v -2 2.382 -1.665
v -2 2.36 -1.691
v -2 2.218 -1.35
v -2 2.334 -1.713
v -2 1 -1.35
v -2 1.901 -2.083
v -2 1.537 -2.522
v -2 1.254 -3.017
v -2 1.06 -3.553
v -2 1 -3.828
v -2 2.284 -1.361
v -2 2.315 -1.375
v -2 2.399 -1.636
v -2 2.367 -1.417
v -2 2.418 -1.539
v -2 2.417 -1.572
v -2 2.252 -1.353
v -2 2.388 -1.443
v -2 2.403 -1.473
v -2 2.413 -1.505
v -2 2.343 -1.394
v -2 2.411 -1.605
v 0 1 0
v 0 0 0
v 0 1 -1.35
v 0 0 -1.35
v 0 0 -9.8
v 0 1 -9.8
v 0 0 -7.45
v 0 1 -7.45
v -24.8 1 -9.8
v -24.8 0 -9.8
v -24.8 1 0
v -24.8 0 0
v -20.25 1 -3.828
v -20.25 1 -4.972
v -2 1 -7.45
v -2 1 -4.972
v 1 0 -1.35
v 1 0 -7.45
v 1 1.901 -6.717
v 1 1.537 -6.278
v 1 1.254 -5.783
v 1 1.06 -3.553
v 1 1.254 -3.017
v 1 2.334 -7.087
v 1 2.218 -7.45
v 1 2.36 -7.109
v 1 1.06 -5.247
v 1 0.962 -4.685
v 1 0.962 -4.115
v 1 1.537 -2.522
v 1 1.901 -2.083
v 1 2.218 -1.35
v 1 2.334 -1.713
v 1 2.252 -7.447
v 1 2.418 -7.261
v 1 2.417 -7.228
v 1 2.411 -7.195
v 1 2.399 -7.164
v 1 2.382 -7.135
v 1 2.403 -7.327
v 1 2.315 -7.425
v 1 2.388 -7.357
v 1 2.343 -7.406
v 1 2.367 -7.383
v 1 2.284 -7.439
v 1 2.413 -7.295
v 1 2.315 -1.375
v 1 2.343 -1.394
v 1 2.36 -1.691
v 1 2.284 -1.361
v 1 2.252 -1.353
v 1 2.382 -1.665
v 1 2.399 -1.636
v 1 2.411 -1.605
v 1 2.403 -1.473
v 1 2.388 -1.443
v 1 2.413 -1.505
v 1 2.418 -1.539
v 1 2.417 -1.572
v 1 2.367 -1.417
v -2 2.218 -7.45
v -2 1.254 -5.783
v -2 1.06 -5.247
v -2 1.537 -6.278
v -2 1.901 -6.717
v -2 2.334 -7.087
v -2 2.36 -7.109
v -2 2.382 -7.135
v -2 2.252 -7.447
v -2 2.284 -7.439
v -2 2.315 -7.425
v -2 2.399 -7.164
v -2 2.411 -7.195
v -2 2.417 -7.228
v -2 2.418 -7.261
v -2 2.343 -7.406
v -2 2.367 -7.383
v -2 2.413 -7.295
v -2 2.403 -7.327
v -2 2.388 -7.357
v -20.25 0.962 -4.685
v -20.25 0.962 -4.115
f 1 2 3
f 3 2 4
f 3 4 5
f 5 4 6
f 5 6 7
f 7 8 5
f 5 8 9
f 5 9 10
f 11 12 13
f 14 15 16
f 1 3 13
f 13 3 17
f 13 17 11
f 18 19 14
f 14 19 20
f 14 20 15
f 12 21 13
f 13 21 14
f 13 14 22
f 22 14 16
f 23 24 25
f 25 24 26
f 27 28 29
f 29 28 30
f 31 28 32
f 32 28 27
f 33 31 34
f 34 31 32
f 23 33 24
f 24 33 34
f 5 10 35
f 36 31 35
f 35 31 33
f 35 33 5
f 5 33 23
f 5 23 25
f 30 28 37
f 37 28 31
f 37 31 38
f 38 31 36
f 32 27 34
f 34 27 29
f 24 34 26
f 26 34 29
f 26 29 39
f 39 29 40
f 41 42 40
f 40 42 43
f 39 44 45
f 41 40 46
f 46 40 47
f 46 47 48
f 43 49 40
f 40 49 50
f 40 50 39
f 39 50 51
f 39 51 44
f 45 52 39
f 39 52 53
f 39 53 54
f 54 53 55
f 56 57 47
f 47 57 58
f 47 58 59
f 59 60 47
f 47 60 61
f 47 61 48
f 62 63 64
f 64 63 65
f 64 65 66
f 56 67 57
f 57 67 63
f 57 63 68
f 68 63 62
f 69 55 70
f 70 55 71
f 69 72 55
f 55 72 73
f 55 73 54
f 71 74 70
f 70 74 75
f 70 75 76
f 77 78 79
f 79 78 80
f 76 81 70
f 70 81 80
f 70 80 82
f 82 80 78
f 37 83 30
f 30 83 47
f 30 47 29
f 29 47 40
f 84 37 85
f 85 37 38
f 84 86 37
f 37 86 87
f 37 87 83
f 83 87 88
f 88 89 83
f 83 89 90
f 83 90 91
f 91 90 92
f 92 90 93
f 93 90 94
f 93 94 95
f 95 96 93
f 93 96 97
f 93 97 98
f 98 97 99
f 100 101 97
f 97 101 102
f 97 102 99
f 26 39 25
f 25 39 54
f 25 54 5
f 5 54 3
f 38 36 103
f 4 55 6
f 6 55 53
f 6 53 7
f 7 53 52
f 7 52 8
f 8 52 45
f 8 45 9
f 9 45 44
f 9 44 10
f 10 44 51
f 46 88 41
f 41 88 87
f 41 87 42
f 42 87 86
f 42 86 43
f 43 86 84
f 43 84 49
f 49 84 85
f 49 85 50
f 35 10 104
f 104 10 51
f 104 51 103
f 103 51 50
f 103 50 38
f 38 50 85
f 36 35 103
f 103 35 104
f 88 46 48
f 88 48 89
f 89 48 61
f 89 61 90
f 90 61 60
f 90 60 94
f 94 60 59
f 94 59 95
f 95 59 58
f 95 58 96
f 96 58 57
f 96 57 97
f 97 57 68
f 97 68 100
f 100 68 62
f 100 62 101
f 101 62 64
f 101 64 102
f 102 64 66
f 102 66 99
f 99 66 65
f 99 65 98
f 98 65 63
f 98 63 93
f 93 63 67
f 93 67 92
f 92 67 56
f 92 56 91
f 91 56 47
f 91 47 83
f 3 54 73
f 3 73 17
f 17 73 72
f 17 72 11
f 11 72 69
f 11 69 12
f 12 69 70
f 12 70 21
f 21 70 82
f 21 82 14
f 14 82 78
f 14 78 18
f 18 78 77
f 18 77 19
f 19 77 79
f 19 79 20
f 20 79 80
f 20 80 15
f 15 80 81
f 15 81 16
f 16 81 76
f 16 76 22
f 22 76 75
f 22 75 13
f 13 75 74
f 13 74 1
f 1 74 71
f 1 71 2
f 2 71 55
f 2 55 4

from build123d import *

# Parameters (mm, degrees)
SKETCH1_W           = 24.8
SKETCH1_H           = 9.8
BOSS_EXTRUDE1_DEPTH = 1
SKETCH2_W           = 3
SKETCH2_H           = 6.1
BOSS_EXTRUDE2_DEPTH = 3.25
SKETCH4_W           = 1
SKETCH4_H           = 6.1
BOSS_EXTRUDE3_DEPTH = 1
SKETCH3_R           = 3.3
CUT_EXTRUDE1_DEPTH  = 21.25
FILLET1_R           = 0.2


with BuildPart() as part:
    # Sketch1 → Boss-Extrude1 (new body)
    with BuildSketch(Plane(origin=(0, 0, 0), x_dir=(1, 0, 0), z_dir=(0, 1, 0))):
        with Locations((-12.4, 4.9)):
            Rectangle(SKETCH1_W, SKETCH1_H)
    extrude(amount=BOSS_EXTRUDE1_DEPTH)

    # Sketch2 → Boss-Extrude2 (add)
    with BuildSketch(Plane(origin=(0, 1, 0), x_dir=(1, 0, 0), z_dir=(0, 1, 0))):
        with Locations((-0.5, 4.4)):
            Rectangle(SKETCH2_W, SKETCH2_H)
    extrude(amount=BOSS_EXTRUDE2_DEPTH)

    # Sketch4 → Boss-Extrude3 (add)
    with BuildSketch(Plane.XZ.offset(-1)):
        with Locations((0.5, -4.4)):
            Rectangle(SKETCH4_W, SKETCH4_H)
    extrude(amount=BOSS_EXTRUDE3_DEPTH)

    # Sketch3 → Cut-Extrude1 (cut)
    with BuildSketch(Plane(origin=(1, 0, 0), x_dir=(0, 0, -1), z_dir=(1, 0, 0))):
        with Locations((4.4, 4.25)):
            Circle(SKETCH3_R)
    extrude(amount=-CUT_EXTRUDE1_DEPTH, mode=Mode.SUBTRACT)

    # Fillet1
    fillet1_edges = [part.edges().sort_by_distance(p)[0] for p in [
        (-0.5, 2.990039683, -1.35),
        (-0.5, 2.990039683, -7.45),
    ]]
    fillet(fillet1_edges, radius=FILLET1_R)


solid = part.part
